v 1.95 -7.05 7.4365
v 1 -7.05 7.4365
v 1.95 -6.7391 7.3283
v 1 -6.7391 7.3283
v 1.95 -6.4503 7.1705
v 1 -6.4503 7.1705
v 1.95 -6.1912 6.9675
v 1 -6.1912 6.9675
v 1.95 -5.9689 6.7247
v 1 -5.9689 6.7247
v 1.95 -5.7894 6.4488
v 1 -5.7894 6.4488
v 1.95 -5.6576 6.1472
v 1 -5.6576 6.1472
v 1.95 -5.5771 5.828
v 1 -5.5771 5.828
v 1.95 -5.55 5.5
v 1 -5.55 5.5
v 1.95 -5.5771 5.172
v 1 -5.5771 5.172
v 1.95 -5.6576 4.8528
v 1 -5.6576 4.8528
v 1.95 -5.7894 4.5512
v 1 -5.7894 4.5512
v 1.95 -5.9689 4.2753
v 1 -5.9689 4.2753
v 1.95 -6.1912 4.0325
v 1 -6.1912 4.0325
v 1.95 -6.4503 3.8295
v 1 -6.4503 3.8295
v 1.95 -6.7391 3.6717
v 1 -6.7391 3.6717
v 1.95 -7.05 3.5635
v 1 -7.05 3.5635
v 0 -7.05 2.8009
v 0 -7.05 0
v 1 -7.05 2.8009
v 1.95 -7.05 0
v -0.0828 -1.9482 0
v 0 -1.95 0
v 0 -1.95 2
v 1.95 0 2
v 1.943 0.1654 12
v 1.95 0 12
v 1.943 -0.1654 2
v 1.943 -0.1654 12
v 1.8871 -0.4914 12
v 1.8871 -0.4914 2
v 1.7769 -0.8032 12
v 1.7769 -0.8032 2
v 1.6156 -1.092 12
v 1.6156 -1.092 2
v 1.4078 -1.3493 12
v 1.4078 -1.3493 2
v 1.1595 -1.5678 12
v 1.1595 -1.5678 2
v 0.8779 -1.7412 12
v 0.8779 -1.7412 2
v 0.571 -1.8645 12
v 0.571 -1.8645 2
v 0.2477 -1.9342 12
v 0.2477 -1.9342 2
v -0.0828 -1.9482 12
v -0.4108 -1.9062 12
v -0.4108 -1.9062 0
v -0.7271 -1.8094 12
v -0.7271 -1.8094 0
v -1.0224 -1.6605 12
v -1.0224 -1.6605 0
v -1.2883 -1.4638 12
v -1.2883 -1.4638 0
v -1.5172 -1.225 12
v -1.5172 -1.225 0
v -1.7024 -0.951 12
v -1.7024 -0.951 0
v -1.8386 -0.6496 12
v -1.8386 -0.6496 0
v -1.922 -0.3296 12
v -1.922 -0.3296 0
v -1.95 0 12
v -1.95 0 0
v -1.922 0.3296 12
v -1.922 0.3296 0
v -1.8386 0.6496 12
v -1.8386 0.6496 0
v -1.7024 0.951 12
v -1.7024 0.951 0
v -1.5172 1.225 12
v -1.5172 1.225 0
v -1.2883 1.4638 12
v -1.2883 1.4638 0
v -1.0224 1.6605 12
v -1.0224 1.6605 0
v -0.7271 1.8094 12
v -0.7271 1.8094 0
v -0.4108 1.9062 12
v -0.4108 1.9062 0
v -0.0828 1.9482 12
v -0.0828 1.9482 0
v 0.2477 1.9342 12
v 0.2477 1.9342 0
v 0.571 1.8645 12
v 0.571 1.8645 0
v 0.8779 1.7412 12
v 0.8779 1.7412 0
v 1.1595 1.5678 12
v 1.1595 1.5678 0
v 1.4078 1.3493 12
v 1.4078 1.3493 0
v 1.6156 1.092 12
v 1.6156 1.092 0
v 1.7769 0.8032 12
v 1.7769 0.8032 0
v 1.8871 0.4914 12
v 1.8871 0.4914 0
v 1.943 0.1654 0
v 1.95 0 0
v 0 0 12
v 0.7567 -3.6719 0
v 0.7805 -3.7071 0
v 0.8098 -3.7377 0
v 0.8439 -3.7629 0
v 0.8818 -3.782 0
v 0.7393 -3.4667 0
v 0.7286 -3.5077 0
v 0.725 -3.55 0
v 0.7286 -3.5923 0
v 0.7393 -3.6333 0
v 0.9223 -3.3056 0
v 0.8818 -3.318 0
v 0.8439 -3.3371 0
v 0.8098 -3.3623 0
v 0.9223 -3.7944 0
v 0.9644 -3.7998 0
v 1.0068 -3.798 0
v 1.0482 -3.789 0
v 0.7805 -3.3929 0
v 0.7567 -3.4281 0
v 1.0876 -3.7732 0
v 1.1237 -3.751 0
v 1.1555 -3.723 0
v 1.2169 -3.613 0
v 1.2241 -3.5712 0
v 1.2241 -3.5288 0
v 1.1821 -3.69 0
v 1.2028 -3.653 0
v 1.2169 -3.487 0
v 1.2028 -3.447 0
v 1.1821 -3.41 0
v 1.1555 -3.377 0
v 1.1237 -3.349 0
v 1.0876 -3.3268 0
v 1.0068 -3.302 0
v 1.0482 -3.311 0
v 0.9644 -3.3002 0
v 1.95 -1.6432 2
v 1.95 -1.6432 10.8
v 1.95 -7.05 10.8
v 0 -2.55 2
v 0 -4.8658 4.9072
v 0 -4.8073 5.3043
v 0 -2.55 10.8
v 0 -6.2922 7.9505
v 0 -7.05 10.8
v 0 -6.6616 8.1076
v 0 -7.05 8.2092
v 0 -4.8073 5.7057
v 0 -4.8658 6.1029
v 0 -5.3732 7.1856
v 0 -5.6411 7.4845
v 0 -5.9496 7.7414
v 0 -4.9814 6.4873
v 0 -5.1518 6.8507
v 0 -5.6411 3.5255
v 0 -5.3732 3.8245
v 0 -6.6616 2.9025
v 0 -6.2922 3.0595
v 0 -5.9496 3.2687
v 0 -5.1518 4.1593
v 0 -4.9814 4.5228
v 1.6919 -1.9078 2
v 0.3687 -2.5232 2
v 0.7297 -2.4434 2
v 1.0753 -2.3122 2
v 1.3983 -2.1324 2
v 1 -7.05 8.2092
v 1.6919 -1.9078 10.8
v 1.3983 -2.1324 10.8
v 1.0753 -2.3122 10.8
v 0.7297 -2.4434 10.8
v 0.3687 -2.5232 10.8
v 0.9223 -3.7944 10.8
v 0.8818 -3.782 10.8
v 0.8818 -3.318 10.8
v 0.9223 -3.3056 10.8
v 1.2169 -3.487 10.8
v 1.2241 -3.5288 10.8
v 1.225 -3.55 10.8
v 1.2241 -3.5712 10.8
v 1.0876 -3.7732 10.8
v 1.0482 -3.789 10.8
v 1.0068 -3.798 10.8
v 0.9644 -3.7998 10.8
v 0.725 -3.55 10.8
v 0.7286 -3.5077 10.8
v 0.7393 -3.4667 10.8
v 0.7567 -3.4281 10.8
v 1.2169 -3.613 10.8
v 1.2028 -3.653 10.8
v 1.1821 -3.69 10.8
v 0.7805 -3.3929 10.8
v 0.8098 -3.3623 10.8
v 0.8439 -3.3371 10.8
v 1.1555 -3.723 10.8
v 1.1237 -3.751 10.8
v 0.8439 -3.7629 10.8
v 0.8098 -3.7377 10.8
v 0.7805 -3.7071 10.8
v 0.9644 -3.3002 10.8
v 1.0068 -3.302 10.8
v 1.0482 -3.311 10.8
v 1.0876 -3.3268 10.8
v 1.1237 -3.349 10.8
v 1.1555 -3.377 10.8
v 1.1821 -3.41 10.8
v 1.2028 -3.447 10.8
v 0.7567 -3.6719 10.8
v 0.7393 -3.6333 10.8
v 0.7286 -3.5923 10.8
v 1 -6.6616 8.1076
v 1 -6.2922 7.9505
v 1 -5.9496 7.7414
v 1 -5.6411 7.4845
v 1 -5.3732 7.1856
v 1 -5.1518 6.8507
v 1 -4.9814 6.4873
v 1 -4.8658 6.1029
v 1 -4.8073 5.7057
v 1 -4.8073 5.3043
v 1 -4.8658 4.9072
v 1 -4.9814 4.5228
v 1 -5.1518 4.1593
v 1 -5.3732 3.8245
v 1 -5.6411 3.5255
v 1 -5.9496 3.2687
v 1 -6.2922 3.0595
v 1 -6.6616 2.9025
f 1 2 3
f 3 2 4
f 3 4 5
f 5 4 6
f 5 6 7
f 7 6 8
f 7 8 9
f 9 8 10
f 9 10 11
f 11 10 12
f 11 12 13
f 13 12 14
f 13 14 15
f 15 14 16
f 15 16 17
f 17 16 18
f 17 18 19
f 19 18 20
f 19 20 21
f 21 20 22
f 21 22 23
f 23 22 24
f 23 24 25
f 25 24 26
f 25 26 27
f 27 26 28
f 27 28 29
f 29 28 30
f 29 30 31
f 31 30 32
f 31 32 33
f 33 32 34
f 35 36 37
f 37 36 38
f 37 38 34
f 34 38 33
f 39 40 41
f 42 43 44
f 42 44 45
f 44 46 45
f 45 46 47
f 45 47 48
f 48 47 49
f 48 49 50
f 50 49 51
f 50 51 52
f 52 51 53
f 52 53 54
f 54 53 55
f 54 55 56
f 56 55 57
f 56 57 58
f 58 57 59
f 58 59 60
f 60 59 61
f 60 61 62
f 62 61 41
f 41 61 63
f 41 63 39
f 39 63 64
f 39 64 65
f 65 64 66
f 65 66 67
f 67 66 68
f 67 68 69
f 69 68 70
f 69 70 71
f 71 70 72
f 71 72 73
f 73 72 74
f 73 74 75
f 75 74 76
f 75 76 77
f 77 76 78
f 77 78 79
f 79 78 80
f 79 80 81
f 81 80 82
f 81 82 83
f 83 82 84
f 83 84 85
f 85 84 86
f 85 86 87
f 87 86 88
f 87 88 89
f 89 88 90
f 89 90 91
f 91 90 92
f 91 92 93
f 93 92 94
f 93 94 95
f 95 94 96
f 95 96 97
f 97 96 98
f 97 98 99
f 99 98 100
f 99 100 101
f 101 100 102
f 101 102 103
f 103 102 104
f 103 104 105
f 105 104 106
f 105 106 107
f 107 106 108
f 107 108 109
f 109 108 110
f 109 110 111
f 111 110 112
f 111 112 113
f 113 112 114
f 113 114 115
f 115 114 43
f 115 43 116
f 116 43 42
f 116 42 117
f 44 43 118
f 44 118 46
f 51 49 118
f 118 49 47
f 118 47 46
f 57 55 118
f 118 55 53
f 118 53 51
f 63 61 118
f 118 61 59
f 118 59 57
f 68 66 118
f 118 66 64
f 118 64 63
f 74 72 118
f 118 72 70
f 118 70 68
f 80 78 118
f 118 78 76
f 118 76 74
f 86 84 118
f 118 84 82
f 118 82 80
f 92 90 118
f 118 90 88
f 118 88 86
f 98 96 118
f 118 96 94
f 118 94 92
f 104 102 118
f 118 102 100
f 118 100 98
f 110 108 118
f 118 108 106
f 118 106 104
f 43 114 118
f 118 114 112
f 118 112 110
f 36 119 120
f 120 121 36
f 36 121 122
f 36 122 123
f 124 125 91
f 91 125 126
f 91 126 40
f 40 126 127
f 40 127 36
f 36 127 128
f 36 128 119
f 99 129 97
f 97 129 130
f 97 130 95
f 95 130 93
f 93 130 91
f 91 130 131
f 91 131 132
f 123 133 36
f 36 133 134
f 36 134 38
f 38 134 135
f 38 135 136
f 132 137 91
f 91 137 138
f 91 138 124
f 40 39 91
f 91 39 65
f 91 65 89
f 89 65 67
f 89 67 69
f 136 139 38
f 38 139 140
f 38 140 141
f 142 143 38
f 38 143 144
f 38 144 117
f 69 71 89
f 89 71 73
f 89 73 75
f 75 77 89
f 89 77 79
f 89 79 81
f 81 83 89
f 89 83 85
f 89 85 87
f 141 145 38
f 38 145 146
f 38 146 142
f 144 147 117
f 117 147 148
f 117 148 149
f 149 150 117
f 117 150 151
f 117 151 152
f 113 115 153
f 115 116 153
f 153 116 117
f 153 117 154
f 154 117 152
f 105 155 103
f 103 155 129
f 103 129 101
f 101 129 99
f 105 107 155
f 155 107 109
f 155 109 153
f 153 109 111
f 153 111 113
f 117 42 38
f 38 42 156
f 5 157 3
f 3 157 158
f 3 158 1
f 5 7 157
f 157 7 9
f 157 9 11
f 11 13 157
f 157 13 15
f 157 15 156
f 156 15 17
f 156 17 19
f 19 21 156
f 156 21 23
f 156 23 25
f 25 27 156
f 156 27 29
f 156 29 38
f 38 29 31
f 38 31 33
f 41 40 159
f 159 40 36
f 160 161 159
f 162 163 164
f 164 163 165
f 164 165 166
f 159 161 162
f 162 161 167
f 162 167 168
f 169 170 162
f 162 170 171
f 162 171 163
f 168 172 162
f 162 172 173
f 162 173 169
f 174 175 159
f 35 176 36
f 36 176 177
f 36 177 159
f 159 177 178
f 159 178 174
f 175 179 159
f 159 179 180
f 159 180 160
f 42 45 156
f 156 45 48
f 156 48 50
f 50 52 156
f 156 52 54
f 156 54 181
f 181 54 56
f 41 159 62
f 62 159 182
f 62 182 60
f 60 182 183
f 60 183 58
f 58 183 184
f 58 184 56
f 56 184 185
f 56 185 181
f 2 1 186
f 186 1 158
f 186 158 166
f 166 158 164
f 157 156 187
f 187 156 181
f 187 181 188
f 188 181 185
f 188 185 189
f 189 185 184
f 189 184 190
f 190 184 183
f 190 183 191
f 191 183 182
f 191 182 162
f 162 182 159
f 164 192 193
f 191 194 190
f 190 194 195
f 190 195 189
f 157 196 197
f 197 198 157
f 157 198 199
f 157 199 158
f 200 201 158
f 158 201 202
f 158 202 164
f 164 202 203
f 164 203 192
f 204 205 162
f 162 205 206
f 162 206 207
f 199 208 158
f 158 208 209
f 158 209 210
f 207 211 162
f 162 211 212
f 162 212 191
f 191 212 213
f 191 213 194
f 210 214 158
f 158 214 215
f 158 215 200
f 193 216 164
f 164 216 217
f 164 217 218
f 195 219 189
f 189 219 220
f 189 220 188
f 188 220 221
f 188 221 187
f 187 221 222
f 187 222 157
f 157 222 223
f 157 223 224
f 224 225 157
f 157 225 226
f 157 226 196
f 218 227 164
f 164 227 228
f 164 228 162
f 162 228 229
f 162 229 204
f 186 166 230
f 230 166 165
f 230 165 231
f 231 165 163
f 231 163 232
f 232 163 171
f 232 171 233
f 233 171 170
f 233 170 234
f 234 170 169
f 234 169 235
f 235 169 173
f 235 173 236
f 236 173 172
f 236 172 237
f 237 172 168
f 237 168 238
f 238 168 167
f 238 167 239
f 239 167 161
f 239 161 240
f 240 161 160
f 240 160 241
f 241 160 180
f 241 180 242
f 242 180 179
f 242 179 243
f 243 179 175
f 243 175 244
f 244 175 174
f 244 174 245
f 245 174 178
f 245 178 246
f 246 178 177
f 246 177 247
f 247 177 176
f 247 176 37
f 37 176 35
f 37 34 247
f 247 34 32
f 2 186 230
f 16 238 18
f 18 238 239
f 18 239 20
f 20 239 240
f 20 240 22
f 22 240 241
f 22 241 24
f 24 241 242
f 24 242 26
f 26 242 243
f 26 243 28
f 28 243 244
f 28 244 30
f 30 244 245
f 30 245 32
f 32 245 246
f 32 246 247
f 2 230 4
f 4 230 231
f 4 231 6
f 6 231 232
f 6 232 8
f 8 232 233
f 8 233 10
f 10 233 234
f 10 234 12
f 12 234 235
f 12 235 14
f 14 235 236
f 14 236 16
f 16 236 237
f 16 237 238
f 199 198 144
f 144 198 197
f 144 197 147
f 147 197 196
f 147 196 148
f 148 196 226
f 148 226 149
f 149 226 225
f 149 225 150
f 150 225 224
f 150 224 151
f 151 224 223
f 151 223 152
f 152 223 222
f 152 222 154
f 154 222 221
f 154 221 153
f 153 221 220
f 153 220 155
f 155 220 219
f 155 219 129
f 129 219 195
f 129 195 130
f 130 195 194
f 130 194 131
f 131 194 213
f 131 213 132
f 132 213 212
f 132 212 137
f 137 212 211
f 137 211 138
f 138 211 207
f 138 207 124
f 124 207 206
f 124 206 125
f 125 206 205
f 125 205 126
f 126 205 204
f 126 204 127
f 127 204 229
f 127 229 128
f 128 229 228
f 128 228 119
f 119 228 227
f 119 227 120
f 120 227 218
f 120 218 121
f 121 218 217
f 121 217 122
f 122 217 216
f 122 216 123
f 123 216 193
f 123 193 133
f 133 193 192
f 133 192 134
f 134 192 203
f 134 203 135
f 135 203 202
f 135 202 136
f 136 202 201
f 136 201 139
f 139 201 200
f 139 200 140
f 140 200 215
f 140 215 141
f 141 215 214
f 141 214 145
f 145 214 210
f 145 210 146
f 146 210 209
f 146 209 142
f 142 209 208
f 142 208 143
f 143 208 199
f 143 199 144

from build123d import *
from build123d.topology import SkipClean

# Parameters (mm, degrees)
SKETCH_1_R          = 1.95
EXTRUDE_1_DEPTH     = 12
SKETCH_4_W          = 2
SKETCH_4_H          = 9
EXTRUDE_2_DEPTH     = 1.95
EXTRUDE_4_DEPTH     = 8.8
SKETCH_9_R          = 2
CUT_EXTRUDE_2_DEPTH = 17
SKETCH_13_R         = 2.75
CUT_EXTRUDE_6_DEPTH = 1
CUT_EXTRUDE_7_DEPTH = 13.389713
SKETCH_14_R         = 0.25
CUT_EXTRUDE_8_DEPTH = 15.053647


with BuildPart() as part:
    # 스케치1 → 보스-돌출1 (new body)
    with BuildSketch(Plane.XY):
        Circle(SKETCH_1_R)
    extrude(amount=EXTRUDE_1_DEPTH)

    # 스케치4 → 보스-돌출2 (add)
    with BuildSketch(Plane(origin=(0, 0, 0), x_dir=(0, 0, -1), z_dir=(1, 0, 0))):
        with Locations((-1, -2.55)):
            Rectangle(SKETCH_4_W, SKETCH_4_H)
    extrude(amount=EXTRUDE_2_DEPTH)

    # 스케치8 → 보스-돌출4 (add)
    with BuildSketch(Plane.XY.offset(2)):
        with BuildLine():
            ThreePointArc((1.95, -1.643168), (1.075273, -2.312204), (0, -2.55))
            Line((0, -2.55), (0, -7.05))
            Line((0, -7.05), (1.95, -7.05))
            Line((1.95, -7.05), (1.95, -1.643168))
        make_face()
    extrude(amount=EXTRUDE_4_DEPTH)

    # 스케치9 → 컷-돌출2 (cut)
    with BuildSketch(Plane.ZY):
        with Locations((5.5, -7.55)):
            Circle(SKETCH_9_R)
    extrude(amount=-CUT_EXTRUDE_2_DEPTH, mode=Mode.SUBTRACT)

    # 스케치13 → 컷-돌출6 (cut)
    with BuildSketch(Plane.ZY):
        with Locations((5.505014, -7.55)):
            Circle(SKETCH_13_R)
    extrude(amount=-CUT_EXTRUDE_6_DEPTH, mode=Mode.SUBTRACT)

    # 스케치12 → 컷-돌출7 (cut, through all)
    with BuildSketch(Plane.XY.offset(2)):
        with BuildLine():
            Line((1.95, 0), (1.95, 1.95))
            Line((1.95, 1.95), (0, 1.95))
            ThreePointArc((0, 1.95), (1.378858, 1.378858), (1.95, 0))
        make_face()
    extrude(amount=-CUT_EXTRUDE_7_DEPTH, mode=Mode.SUBTRACT)

    # 스케치14 → 컷-돌출8 (cut, through all)
    with SkipClean():  # the faces are left unmerged after this step: merging them gives an invalid solid
        with BuildSketch(Plane(origin=(0, 0, 0), x_dir=(-1, 0, 0), z_dir=(0, 0, -1))):
            with Locations((-0.975, -3.55)):
                Circle(SKETCH_14_R)
        extrude(amount=-CUT_EXTRUDE_8_DEPTH, mode=Mode.SUBTRACT)


solid = part.part
